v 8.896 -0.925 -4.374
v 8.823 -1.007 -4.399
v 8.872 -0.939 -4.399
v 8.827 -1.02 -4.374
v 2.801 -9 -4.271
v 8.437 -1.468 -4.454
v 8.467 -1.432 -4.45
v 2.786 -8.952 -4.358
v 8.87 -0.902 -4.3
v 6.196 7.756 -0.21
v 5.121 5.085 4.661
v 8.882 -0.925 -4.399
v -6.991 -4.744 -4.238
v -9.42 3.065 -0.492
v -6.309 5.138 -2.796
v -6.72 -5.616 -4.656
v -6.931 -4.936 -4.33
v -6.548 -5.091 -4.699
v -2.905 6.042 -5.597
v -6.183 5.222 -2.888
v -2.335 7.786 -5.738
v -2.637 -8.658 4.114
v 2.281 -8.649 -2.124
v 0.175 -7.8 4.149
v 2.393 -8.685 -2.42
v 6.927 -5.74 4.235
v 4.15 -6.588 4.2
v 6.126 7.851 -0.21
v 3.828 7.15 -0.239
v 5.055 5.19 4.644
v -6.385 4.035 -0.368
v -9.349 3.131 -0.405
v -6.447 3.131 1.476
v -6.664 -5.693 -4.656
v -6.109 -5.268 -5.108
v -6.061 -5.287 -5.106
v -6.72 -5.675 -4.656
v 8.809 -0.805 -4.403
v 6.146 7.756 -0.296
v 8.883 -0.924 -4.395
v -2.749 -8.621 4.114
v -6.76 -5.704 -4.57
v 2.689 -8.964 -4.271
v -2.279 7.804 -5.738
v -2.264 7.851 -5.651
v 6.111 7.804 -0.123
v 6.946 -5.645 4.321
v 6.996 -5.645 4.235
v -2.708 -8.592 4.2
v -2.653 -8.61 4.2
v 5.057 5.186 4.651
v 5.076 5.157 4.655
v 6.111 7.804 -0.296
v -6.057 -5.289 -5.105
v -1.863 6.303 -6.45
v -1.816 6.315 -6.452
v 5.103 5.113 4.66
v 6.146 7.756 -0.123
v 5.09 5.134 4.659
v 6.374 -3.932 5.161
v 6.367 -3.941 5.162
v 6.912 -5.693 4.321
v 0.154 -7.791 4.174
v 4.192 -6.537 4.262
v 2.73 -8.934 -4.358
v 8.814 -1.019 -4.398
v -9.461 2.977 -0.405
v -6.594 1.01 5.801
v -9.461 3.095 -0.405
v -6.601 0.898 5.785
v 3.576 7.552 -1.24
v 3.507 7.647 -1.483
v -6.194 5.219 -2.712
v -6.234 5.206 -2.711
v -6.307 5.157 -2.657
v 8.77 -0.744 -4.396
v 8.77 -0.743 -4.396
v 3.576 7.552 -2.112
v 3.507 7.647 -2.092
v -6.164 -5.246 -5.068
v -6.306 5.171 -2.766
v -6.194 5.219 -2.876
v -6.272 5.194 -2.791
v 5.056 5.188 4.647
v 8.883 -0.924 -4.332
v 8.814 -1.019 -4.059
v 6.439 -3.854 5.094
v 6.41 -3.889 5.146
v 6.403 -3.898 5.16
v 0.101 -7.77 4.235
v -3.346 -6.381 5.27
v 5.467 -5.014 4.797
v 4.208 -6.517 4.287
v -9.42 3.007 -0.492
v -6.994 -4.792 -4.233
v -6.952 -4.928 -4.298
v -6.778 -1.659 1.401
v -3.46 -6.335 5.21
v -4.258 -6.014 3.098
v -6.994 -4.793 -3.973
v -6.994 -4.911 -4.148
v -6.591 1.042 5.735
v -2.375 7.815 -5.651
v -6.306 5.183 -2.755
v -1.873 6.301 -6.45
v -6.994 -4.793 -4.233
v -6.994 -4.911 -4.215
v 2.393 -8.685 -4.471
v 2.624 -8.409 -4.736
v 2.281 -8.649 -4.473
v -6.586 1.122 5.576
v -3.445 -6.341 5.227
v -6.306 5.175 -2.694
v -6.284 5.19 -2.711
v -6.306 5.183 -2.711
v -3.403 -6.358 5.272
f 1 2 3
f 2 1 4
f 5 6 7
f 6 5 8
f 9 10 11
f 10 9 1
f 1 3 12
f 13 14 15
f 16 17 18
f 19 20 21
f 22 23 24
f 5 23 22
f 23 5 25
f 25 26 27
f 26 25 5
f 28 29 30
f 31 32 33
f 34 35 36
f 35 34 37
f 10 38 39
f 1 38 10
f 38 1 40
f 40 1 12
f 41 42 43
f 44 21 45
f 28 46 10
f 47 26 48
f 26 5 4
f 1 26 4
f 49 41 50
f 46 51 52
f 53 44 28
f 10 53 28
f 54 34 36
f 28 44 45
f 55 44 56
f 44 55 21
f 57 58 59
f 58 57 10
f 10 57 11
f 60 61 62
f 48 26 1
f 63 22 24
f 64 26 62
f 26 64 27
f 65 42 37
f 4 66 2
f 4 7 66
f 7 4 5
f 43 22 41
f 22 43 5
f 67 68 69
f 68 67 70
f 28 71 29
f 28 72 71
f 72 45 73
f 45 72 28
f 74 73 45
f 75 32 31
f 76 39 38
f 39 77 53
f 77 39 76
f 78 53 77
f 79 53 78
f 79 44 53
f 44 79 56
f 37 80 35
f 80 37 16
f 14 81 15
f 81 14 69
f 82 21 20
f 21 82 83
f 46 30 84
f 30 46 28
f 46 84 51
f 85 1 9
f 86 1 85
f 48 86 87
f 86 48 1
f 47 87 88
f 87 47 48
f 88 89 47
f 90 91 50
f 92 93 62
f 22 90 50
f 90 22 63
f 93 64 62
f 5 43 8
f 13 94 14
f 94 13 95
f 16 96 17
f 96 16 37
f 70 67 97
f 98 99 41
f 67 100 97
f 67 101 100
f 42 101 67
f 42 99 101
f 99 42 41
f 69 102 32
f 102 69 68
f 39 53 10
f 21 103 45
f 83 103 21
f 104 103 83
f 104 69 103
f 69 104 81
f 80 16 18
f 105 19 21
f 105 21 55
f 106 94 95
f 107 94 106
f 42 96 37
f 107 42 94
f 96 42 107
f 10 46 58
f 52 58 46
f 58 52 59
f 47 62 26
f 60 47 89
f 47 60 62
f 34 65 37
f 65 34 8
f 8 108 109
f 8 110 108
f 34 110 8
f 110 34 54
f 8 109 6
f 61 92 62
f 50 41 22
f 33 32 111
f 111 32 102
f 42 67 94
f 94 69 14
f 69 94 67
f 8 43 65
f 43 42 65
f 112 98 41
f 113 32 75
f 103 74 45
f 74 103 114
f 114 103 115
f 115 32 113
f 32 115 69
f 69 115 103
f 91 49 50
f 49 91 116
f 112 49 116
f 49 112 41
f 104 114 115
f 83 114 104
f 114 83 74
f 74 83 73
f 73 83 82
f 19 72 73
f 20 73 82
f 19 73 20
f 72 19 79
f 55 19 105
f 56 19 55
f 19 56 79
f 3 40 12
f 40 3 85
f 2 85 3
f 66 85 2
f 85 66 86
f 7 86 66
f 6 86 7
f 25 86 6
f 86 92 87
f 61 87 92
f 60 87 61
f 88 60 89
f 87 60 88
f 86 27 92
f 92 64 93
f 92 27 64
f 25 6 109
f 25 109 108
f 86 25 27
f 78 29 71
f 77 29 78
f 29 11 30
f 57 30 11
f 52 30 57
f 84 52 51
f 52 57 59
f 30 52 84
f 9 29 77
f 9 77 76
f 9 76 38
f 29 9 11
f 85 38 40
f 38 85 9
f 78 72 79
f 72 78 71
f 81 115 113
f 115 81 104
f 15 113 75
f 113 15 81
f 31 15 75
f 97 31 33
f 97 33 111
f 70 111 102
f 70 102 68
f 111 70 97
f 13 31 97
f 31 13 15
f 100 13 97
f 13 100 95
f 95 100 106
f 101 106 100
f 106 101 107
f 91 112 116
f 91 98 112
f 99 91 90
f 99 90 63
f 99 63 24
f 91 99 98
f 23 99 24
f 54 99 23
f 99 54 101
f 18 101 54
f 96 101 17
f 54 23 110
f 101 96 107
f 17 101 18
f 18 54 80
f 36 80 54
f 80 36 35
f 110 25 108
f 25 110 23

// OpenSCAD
// Auto-generated OpenSCAD file

    inner_points = 10*[[0.23620735966756062, -0.8589852711237683, 0.5000000000000063], [0.23620735966771172, -0.858985271123738, -0.4999999999999937], [0.34761095792346763, 0.7552090254358284, 0.5000000000000718], [0.34761095792361874, 0.7552090254358587, -0.4999999999999281], [-0.6913160481524341, -0.4852202005968615, 0.49999999999987743], [-0.6913160481522832, -0.48522020059683124, -0.5000000000001226], [-0.6224648379612451, 0.5124067391231968, 0.49999999999991795], [-0.6224648379610942, 0.512406739123227, -0.5000000000000819], [0.8782995612526363, -0.09235784879684011, 0.5000000000001265], [0.8782995612527874, -0.09235784879680989, -0.49999999999987355], [0.029667398545917656, -0.03378951119170483, 1.0257311121191337]];

    outer_points = 10*[[0.6896236781921562, -0.5645352314085775, 0.42346895131185747], [0.41955903020283425, 0.3036037251142055, 0.8398820131554279], [-0.6679054017418039, -0.5645352314085775, -0.456956392418973], [-0.9379700497311259, 0.3036037251142055, -0.04054333057540266], [0.879621500888307, -0.092505702154205, -0.43739628255614915], [0.6095568528989852, 0.775633254368578, -0.0209832207125788], [0.04062238877274693, -0.092505702154205, -0.9815290695386115], [-0.22944225921657496, 0.775633254368578, -0.5651160076950412], [-0.26680054613810145, -0.8562655241813926, 0.41138013859295025], [-0.5368651941274234, 0.011873432341390544, 0.8277932004365205], [0.2770137117261496, -0.8904771373480586, -0.42712783302573903]];

    // Convex hull for inner set (I)
    module inner_hull() {
        hull() {
            for (p = inner_points) {
                translate(p) sphere(r=0.1);
            }
        }
    }

    // Convex hull for outer set (O) minus inner hull (O \ I)
    module outer_minus_inner() {
        difference() {
            hull() {
                for (p = outer_points) {
                    translate(p) sphere(r=0.1);
                }
            }
            inner_hull(); // Subtract inner hull
        }
    }

    // Convex hull for outer set (O) minus all translated inner hulls
    module outer_minus_AllTranslationInner() {
        difference() {
            hull() {
                for (p = outer_points) {
                    translate(p) sphere(r=0.1);
                }
            }
            hull() {
                translate([0,0,50]) inner_hull();
                translate([0,0,-50]) inner_hull();
            }; // Subtract translated inner hulls
        }
    }

    // Difference between outer_minus_inner and outer_minus_AllTranslationInner
    module outer_minus_inner_diff() {
        difference() {
            // Outer minus inner
            difference() {
                hull() {
                    for (p = outer_points) {
                        translate(p) sphere(r=0.1);
                    }
                }
                inner_hull();
            }

            // Subtract Outer minus AllTranslationInner
            difference() {
                hull() {
                    for (p = outer_points) {
                        translate(p) sphere(r=0.1);
                    }
                }
                hull() {
                    translate([0,0,50]) inner_hull();
                    translate([0,0,-50]) inner_hull();
                };
            }
        }
    }

    // Rendering all with colors applied
    color([0, 1, 0, 1]) outer_minus_AllTranslationInner(); // Opaque green
    
